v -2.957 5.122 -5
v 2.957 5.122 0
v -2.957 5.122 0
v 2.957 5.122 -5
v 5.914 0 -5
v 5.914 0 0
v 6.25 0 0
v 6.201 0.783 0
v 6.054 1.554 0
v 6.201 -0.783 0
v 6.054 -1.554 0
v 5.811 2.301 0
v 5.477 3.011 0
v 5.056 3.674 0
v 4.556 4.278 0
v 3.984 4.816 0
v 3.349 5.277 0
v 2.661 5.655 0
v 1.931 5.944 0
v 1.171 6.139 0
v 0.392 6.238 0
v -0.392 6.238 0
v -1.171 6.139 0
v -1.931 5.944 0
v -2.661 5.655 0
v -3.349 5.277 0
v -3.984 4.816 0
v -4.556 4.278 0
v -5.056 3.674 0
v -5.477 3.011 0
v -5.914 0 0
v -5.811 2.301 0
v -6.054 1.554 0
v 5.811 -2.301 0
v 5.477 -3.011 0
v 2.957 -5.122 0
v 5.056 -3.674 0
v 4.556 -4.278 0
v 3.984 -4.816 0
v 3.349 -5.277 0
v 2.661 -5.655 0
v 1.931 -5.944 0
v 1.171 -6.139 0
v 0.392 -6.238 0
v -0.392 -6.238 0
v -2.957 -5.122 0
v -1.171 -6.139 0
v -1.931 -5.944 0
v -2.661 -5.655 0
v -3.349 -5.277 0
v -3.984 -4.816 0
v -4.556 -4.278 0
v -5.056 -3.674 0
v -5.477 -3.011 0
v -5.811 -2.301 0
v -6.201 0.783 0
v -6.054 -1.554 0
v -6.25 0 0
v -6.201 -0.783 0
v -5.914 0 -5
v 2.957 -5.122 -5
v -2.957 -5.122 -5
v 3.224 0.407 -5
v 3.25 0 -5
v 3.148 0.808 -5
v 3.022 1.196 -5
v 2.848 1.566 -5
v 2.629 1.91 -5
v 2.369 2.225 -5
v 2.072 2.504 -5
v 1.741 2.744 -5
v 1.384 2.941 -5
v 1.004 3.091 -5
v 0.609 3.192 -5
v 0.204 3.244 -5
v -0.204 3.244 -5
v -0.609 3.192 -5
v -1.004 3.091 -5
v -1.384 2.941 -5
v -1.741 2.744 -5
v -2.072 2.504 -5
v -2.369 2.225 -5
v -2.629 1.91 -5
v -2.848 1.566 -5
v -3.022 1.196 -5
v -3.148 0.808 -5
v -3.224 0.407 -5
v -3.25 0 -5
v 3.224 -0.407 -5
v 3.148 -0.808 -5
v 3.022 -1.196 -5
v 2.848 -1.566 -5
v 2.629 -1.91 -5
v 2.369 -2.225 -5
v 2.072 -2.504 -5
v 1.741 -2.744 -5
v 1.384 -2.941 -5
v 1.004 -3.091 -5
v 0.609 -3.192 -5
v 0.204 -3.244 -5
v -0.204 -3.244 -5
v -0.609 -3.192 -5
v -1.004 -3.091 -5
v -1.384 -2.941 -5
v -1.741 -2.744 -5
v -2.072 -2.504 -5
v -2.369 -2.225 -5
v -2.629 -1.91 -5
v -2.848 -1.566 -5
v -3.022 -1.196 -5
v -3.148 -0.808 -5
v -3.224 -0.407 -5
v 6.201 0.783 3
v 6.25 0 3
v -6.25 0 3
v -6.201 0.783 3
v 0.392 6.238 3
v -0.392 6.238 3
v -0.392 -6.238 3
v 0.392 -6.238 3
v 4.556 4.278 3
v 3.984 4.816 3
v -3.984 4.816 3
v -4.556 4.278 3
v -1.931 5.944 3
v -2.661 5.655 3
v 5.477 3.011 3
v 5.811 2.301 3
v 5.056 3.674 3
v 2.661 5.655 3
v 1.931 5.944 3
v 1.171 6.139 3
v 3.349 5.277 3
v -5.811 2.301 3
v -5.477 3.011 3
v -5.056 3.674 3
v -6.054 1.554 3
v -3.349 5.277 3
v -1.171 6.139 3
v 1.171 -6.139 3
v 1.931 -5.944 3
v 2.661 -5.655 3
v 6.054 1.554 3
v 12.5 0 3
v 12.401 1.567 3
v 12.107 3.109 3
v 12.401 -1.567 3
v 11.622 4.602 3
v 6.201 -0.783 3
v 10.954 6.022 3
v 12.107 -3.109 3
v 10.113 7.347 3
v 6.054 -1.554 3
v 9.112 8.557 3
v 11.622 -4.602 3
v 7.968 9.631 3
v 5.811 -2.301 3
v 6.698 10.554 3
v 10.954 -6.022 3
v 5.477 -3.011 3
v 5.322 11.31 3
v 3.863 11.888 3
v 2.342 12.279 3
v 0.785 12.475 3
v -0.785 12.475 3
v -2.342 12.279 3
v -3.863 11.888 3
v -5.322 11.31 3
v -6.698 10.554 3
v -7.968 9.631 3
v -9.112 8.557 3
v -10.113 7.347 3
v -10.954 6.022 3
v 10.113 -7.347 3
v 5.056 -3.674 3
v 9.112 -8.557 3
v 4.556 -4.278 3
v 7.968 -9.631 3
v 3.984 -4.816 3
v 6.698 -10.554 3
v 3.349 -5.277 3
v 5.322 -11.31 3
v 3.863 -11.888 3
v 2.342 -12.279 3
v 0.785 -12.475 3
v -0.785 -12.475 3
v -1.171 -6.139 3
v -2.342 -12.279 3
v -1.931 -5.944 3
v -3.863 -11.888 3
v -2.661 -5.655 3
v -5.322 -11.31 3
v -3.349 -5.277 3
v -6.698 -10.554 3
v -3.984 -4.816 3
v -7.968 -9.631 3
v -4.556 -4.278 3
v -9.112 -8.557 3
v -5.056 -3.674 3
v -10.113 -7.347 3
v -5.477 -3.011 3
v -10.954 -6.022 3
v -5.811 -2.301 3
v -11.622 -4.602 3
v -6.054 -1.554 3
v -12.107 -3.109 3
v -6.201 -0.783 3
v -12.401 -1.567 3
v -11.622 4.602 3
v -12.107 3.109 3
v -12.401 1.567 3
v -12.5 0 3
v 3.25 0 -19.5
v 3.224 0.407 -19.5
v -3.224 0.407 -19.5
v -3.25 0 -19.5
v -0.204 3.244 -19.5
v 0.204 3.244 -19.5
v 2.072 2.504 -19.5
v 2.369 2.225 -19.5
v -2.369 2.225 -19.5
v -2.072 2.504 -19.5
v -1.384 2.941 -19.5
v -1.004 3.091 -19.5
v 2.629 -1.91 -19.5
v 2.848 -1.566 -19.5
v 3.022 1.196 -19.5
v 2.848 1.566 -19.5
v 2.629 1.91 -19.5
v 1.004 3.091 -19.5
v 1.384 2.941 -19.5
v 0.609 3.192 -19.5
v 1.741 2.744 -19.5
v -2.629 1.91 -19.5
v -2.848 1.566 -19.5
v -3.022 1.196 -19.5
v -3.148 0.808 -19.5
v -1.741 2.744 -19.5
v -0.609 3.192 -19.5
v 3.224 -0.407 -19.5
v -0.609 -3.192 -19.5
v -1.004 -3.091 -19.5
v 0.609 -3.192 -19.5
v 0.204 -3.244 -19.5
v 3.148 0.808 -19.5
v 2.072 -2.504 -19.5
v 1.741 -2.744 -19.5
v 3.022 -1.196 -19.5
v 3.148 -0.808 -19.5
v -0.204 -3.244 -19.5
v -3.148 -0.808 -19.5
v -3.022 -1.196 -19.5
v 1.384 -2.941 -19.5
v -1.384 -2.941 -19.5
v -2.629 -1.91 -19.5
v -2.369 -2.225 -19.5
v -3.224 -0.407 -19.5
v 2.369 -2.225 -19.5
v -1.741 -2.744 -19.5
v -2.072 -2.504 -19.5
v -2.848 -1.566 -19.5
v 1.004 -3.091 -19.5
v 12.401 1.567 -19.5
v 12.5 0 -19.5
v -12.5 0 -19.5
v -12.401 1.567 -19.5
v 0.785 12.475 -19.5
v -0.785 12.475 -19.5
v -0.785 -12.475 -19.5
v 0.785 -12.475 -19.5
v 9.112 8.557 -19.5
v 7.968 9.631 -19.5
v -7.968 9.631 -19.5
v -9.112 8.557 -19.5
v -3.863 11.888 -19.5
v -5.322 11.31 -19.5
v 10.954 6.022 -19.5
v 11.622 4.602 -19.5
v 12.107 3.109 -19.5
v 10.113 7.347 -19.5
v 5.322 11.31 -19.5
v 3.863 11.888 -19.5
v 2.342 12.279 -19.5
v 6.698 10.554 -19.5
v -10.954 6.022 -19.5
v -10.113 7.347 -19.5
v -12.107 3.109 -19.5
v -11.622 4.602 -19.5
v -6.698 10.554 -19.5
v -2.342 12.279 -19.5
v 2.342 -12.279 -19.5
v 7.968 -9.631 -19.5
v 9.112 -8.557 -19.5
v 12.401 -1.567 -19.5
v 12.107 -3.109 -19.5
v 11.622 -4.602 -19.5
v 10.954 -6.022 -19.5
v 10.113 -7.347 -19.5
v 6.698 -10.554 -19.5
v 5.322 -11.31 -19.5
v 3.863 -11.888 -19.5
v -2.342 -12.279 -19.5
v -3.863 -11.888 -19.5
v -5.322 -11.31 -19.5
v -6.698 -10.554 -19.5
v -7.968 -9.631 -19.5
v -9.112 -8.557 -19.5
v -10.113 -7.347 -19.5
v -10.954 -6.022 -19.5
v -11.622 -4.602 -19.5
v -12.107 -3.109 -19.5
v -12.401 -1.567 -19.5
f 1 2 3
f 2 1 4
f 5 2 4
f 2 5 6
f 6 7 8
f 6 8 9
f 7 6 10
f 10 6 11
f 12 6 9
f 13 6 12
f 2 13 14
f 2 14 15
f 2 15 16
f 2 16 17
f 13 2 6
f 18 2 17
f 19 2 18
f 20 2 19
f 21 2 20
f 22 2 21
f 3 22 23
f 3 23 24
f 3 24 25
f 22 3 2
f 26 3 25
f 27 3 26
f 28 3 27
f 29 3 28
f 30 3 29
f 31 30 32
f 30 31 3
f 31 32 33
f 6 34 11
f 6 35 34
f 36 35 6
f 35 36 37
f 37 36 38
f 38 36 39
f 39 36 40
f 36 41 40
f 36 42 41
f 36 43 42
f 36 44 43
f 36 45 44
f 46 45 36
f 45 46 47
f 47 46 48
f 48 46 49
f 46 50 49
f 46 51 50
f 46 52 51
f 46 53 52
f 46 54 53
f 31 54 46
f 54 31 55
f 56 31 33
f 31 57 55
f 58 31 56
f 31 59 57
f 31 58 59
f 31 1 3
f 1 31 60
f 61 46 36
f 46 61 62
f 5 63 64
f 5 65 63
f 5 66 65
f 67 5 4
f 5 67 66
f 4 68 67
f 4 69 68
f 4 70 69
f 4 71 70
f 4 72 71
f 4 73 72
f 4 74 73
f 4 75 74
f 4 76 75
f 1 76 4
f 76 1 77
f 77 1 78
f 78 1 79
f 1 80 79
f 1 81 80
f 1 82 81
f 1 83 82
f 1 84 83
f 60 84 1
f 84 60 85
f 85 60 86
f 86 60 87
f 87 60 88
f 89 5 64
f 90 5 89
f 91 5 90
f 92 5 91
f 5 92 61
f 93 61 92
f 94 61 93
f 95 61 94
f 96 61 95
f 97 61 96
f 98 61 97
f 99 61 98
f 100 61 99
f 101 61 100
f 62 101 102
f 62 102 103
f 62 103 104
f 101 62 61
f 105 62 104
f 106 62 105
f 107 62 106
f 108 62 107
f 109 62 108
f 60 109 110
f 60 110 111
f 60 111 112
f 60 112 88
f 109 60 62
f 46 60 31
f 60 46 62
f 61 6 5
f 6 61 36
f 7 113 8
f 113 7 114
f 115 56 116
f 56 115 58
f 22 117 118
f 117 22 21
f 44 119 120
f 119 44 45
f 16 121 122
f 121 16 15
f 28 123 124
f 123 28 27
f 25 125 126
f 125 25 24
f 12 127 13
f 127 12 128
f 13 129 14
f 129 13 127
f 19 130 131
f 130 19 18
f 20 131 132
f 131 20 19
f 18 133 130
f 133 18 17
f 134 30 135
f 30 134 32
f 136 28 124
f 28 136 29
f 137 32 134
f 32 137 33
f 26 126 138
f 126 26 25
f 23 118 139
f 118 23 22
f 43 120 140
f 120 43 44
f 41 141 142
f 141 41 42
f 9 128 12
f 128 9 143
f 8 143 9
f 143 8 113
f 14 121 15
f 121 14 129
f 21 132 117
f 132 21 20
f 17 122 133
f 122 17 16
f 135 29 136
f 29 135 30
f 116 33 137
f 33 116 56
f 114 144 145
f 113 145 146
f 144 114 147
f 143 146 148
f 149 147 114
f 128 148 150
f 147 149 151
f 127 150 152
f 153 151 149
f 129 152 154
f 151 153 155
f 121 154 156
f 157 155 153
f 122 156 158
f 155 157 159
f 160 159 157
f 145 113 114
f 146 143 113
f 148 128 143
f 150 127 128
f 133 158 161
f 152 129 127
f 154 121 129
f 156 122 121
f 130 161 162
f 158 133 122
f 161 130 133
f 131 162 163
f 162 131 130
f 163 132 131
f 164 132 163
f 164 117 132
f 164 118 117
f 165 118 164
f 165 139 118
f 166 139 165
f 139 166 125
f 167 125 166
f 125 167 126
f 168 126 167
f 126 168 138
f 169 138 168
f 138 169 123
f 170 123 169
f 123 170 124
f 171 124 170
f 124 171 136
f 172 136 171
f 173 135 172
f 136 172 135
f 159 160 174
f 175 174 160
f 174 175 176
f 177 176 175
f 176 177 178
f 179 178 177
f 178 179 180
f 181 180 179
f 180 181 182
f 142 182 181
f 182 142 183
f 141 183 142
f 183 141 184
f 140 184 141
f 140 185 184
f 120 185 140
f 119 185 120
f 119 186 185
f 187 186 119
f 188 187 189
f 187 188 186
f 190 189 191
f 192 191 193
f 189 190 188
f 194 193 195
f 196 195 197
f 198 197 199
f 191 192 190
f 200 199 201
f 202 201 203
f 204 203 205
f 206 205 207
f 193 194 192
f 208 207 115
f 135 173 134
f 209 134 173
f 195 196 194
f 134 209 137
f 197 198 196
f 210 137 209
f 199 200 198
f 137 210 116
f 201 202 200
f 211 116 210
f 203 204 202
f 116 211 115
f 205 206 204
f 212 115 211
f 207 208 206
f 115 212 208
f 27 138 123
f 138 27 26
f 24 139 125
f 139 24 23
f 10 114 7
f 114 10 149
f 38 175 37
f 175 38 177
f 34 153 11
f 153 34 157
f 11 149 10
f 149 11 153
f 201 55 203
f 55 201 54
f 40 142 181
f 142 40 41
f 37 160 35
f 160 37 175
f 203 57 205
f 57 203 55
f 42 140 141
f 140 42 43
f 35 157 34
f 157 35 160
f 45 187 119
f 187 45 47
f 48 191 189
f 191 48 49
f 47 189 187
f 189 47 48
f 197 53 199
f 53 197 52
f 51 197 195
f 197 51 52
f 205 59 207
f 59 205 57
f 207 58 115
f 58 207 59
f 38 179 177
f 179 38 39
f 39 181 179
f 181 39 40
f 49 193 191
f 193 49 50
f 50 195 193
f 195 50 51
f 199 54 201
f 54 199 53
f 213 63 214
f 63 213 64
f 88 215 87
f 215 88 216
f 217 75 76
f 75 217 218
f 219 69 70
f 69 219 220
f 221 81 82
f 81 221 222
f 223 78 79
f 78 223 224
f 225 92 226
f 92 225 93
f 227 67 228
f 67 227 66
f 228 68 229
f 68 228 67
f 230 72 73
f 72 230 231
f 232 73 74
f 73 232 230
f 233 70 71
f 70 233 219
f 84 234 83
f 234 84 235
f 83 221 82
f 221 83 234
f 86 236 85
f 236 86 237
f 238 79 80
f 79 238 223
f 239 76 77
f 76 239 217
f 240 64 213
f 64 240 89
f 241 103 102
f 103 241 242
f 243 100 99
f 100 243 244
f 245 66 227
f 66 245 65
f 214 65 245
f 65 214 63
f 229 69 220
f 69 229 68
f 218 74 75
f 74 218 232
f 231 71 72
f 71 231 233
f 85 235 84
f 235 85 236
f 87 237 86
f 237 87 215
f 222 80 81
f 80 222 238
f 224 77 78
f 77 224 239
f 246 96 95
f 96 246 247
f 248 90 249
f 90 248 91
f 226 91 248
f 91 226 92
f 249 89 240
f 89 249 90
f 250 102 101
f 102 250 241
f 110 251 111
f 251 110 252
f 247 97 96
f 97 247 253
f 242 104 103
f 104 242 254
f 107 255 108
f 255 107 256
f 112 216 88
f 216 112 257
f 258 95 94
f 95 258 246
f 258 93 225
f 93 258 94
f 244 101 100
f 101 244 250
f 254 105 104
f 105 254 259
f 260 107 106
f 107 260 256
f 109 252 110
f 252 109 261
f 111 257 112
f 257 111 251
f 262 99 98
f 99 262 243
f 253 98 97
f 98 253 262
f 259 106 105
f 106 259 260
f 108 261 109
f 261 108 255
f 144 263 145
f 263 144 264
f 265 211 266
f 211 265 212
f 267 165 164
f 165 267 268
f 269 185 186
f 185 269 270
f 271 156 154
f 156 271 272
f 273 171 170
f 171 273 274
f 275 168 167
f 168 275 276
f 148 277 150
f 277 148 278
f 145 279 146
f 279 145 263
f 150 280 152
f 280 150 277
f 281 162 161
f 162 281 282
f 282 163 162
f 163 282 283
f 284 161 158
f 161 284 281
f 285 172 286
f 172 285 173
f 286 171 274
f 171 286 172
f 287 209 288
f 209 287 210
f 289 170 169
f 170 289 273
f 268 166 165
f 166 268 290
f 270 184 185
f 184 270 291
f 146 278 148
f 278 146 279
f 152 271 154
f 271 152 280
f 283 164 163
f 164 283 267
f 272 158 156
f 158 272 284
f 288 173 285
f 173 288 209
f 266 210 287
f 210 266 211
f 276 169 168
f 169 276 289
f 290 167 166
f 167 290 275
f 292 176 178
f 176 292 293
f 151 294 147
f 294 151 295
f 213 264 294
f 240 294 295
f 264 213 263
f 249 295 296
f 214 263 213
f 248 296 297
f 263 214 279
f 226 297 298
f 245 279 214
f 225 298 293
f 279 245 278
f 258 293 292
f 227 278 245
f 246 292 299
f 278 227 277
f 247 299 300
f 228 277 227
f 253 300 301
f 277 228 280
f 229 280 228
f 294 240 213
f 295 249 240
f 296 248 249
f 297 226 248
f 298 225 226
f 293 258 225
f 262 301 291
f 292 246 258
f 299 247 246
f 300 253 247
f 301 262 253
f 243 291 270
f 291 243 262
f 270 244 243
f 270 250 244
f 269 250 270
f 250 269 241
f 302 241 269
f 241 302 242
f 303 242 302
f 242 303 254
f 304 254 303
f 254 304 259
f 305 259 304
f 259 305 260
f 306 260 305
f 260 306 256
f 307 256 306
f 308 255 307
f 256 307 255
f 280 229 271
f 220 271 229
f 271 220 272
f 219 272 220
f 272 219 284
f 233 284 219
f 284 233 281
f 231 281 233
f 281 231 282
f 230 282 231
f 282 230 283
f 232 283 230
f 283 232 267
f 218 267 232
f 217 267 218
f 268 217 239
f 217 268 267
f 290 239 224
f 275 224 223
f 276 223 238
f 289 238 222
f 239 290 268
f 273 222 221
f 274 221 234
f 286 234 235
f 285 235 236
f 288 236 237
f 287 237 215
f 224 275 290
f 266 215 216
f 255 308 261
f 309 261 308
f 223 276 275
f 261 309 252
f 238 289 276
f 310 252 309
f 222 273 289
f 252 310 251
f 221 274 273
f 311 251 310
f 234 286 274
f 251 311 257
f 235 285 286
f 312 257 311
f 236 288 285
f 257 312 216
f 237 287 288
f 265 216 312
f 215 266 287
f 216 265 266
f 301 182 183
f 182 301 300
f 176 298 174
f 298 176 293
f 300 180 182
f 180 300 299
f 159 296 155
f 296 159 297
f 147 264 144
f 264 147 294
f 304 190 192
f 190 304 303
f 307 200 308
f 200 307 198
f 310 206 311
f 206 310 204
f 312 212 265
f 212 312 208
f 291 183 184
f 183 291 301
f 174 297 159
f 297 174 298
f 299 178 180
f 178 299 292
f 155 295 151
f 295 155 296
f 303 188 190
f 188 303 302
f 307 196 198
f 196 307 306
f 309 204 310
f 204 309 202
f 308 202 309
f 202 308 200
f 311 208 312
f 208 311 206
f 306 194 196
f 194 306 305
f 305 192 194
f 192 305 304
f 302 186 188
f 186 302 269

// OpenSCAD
$fn = 50;


difference() {
	union() {
		translate(v = [0, 0, -19.5000000000]) {
			cylinder(h = 22.5000000000, r = 12.5000000000);
		}
	}
	union() {
		translate(v = [0, 0, 0]) {
			rotate(a = [0, 0, 0]) {
				difference() {
					union() {
						translate(v = [0, 0, -5]) {
							linear_extrude(height = 5) {
								polygon(points = [[5.9142500000, 0.0000000000], [2.9571250000, 5.1218907443], [-2.9571250000, 5.1218907443], [-5.9142500000, 0.0000000000], [-2.9571250000, -5.1218907443], [2.9571250000, -5.1218907443]]);
							}
						}
					}
					union();
				}
			}
		}
		#cylinder(h = 3, r = 6.2500000000);
		#translate(v = [0, 0, -100.0000000000]) {
			cylinder(h = 200, r = 3.2500000000);
		}
	}
}
